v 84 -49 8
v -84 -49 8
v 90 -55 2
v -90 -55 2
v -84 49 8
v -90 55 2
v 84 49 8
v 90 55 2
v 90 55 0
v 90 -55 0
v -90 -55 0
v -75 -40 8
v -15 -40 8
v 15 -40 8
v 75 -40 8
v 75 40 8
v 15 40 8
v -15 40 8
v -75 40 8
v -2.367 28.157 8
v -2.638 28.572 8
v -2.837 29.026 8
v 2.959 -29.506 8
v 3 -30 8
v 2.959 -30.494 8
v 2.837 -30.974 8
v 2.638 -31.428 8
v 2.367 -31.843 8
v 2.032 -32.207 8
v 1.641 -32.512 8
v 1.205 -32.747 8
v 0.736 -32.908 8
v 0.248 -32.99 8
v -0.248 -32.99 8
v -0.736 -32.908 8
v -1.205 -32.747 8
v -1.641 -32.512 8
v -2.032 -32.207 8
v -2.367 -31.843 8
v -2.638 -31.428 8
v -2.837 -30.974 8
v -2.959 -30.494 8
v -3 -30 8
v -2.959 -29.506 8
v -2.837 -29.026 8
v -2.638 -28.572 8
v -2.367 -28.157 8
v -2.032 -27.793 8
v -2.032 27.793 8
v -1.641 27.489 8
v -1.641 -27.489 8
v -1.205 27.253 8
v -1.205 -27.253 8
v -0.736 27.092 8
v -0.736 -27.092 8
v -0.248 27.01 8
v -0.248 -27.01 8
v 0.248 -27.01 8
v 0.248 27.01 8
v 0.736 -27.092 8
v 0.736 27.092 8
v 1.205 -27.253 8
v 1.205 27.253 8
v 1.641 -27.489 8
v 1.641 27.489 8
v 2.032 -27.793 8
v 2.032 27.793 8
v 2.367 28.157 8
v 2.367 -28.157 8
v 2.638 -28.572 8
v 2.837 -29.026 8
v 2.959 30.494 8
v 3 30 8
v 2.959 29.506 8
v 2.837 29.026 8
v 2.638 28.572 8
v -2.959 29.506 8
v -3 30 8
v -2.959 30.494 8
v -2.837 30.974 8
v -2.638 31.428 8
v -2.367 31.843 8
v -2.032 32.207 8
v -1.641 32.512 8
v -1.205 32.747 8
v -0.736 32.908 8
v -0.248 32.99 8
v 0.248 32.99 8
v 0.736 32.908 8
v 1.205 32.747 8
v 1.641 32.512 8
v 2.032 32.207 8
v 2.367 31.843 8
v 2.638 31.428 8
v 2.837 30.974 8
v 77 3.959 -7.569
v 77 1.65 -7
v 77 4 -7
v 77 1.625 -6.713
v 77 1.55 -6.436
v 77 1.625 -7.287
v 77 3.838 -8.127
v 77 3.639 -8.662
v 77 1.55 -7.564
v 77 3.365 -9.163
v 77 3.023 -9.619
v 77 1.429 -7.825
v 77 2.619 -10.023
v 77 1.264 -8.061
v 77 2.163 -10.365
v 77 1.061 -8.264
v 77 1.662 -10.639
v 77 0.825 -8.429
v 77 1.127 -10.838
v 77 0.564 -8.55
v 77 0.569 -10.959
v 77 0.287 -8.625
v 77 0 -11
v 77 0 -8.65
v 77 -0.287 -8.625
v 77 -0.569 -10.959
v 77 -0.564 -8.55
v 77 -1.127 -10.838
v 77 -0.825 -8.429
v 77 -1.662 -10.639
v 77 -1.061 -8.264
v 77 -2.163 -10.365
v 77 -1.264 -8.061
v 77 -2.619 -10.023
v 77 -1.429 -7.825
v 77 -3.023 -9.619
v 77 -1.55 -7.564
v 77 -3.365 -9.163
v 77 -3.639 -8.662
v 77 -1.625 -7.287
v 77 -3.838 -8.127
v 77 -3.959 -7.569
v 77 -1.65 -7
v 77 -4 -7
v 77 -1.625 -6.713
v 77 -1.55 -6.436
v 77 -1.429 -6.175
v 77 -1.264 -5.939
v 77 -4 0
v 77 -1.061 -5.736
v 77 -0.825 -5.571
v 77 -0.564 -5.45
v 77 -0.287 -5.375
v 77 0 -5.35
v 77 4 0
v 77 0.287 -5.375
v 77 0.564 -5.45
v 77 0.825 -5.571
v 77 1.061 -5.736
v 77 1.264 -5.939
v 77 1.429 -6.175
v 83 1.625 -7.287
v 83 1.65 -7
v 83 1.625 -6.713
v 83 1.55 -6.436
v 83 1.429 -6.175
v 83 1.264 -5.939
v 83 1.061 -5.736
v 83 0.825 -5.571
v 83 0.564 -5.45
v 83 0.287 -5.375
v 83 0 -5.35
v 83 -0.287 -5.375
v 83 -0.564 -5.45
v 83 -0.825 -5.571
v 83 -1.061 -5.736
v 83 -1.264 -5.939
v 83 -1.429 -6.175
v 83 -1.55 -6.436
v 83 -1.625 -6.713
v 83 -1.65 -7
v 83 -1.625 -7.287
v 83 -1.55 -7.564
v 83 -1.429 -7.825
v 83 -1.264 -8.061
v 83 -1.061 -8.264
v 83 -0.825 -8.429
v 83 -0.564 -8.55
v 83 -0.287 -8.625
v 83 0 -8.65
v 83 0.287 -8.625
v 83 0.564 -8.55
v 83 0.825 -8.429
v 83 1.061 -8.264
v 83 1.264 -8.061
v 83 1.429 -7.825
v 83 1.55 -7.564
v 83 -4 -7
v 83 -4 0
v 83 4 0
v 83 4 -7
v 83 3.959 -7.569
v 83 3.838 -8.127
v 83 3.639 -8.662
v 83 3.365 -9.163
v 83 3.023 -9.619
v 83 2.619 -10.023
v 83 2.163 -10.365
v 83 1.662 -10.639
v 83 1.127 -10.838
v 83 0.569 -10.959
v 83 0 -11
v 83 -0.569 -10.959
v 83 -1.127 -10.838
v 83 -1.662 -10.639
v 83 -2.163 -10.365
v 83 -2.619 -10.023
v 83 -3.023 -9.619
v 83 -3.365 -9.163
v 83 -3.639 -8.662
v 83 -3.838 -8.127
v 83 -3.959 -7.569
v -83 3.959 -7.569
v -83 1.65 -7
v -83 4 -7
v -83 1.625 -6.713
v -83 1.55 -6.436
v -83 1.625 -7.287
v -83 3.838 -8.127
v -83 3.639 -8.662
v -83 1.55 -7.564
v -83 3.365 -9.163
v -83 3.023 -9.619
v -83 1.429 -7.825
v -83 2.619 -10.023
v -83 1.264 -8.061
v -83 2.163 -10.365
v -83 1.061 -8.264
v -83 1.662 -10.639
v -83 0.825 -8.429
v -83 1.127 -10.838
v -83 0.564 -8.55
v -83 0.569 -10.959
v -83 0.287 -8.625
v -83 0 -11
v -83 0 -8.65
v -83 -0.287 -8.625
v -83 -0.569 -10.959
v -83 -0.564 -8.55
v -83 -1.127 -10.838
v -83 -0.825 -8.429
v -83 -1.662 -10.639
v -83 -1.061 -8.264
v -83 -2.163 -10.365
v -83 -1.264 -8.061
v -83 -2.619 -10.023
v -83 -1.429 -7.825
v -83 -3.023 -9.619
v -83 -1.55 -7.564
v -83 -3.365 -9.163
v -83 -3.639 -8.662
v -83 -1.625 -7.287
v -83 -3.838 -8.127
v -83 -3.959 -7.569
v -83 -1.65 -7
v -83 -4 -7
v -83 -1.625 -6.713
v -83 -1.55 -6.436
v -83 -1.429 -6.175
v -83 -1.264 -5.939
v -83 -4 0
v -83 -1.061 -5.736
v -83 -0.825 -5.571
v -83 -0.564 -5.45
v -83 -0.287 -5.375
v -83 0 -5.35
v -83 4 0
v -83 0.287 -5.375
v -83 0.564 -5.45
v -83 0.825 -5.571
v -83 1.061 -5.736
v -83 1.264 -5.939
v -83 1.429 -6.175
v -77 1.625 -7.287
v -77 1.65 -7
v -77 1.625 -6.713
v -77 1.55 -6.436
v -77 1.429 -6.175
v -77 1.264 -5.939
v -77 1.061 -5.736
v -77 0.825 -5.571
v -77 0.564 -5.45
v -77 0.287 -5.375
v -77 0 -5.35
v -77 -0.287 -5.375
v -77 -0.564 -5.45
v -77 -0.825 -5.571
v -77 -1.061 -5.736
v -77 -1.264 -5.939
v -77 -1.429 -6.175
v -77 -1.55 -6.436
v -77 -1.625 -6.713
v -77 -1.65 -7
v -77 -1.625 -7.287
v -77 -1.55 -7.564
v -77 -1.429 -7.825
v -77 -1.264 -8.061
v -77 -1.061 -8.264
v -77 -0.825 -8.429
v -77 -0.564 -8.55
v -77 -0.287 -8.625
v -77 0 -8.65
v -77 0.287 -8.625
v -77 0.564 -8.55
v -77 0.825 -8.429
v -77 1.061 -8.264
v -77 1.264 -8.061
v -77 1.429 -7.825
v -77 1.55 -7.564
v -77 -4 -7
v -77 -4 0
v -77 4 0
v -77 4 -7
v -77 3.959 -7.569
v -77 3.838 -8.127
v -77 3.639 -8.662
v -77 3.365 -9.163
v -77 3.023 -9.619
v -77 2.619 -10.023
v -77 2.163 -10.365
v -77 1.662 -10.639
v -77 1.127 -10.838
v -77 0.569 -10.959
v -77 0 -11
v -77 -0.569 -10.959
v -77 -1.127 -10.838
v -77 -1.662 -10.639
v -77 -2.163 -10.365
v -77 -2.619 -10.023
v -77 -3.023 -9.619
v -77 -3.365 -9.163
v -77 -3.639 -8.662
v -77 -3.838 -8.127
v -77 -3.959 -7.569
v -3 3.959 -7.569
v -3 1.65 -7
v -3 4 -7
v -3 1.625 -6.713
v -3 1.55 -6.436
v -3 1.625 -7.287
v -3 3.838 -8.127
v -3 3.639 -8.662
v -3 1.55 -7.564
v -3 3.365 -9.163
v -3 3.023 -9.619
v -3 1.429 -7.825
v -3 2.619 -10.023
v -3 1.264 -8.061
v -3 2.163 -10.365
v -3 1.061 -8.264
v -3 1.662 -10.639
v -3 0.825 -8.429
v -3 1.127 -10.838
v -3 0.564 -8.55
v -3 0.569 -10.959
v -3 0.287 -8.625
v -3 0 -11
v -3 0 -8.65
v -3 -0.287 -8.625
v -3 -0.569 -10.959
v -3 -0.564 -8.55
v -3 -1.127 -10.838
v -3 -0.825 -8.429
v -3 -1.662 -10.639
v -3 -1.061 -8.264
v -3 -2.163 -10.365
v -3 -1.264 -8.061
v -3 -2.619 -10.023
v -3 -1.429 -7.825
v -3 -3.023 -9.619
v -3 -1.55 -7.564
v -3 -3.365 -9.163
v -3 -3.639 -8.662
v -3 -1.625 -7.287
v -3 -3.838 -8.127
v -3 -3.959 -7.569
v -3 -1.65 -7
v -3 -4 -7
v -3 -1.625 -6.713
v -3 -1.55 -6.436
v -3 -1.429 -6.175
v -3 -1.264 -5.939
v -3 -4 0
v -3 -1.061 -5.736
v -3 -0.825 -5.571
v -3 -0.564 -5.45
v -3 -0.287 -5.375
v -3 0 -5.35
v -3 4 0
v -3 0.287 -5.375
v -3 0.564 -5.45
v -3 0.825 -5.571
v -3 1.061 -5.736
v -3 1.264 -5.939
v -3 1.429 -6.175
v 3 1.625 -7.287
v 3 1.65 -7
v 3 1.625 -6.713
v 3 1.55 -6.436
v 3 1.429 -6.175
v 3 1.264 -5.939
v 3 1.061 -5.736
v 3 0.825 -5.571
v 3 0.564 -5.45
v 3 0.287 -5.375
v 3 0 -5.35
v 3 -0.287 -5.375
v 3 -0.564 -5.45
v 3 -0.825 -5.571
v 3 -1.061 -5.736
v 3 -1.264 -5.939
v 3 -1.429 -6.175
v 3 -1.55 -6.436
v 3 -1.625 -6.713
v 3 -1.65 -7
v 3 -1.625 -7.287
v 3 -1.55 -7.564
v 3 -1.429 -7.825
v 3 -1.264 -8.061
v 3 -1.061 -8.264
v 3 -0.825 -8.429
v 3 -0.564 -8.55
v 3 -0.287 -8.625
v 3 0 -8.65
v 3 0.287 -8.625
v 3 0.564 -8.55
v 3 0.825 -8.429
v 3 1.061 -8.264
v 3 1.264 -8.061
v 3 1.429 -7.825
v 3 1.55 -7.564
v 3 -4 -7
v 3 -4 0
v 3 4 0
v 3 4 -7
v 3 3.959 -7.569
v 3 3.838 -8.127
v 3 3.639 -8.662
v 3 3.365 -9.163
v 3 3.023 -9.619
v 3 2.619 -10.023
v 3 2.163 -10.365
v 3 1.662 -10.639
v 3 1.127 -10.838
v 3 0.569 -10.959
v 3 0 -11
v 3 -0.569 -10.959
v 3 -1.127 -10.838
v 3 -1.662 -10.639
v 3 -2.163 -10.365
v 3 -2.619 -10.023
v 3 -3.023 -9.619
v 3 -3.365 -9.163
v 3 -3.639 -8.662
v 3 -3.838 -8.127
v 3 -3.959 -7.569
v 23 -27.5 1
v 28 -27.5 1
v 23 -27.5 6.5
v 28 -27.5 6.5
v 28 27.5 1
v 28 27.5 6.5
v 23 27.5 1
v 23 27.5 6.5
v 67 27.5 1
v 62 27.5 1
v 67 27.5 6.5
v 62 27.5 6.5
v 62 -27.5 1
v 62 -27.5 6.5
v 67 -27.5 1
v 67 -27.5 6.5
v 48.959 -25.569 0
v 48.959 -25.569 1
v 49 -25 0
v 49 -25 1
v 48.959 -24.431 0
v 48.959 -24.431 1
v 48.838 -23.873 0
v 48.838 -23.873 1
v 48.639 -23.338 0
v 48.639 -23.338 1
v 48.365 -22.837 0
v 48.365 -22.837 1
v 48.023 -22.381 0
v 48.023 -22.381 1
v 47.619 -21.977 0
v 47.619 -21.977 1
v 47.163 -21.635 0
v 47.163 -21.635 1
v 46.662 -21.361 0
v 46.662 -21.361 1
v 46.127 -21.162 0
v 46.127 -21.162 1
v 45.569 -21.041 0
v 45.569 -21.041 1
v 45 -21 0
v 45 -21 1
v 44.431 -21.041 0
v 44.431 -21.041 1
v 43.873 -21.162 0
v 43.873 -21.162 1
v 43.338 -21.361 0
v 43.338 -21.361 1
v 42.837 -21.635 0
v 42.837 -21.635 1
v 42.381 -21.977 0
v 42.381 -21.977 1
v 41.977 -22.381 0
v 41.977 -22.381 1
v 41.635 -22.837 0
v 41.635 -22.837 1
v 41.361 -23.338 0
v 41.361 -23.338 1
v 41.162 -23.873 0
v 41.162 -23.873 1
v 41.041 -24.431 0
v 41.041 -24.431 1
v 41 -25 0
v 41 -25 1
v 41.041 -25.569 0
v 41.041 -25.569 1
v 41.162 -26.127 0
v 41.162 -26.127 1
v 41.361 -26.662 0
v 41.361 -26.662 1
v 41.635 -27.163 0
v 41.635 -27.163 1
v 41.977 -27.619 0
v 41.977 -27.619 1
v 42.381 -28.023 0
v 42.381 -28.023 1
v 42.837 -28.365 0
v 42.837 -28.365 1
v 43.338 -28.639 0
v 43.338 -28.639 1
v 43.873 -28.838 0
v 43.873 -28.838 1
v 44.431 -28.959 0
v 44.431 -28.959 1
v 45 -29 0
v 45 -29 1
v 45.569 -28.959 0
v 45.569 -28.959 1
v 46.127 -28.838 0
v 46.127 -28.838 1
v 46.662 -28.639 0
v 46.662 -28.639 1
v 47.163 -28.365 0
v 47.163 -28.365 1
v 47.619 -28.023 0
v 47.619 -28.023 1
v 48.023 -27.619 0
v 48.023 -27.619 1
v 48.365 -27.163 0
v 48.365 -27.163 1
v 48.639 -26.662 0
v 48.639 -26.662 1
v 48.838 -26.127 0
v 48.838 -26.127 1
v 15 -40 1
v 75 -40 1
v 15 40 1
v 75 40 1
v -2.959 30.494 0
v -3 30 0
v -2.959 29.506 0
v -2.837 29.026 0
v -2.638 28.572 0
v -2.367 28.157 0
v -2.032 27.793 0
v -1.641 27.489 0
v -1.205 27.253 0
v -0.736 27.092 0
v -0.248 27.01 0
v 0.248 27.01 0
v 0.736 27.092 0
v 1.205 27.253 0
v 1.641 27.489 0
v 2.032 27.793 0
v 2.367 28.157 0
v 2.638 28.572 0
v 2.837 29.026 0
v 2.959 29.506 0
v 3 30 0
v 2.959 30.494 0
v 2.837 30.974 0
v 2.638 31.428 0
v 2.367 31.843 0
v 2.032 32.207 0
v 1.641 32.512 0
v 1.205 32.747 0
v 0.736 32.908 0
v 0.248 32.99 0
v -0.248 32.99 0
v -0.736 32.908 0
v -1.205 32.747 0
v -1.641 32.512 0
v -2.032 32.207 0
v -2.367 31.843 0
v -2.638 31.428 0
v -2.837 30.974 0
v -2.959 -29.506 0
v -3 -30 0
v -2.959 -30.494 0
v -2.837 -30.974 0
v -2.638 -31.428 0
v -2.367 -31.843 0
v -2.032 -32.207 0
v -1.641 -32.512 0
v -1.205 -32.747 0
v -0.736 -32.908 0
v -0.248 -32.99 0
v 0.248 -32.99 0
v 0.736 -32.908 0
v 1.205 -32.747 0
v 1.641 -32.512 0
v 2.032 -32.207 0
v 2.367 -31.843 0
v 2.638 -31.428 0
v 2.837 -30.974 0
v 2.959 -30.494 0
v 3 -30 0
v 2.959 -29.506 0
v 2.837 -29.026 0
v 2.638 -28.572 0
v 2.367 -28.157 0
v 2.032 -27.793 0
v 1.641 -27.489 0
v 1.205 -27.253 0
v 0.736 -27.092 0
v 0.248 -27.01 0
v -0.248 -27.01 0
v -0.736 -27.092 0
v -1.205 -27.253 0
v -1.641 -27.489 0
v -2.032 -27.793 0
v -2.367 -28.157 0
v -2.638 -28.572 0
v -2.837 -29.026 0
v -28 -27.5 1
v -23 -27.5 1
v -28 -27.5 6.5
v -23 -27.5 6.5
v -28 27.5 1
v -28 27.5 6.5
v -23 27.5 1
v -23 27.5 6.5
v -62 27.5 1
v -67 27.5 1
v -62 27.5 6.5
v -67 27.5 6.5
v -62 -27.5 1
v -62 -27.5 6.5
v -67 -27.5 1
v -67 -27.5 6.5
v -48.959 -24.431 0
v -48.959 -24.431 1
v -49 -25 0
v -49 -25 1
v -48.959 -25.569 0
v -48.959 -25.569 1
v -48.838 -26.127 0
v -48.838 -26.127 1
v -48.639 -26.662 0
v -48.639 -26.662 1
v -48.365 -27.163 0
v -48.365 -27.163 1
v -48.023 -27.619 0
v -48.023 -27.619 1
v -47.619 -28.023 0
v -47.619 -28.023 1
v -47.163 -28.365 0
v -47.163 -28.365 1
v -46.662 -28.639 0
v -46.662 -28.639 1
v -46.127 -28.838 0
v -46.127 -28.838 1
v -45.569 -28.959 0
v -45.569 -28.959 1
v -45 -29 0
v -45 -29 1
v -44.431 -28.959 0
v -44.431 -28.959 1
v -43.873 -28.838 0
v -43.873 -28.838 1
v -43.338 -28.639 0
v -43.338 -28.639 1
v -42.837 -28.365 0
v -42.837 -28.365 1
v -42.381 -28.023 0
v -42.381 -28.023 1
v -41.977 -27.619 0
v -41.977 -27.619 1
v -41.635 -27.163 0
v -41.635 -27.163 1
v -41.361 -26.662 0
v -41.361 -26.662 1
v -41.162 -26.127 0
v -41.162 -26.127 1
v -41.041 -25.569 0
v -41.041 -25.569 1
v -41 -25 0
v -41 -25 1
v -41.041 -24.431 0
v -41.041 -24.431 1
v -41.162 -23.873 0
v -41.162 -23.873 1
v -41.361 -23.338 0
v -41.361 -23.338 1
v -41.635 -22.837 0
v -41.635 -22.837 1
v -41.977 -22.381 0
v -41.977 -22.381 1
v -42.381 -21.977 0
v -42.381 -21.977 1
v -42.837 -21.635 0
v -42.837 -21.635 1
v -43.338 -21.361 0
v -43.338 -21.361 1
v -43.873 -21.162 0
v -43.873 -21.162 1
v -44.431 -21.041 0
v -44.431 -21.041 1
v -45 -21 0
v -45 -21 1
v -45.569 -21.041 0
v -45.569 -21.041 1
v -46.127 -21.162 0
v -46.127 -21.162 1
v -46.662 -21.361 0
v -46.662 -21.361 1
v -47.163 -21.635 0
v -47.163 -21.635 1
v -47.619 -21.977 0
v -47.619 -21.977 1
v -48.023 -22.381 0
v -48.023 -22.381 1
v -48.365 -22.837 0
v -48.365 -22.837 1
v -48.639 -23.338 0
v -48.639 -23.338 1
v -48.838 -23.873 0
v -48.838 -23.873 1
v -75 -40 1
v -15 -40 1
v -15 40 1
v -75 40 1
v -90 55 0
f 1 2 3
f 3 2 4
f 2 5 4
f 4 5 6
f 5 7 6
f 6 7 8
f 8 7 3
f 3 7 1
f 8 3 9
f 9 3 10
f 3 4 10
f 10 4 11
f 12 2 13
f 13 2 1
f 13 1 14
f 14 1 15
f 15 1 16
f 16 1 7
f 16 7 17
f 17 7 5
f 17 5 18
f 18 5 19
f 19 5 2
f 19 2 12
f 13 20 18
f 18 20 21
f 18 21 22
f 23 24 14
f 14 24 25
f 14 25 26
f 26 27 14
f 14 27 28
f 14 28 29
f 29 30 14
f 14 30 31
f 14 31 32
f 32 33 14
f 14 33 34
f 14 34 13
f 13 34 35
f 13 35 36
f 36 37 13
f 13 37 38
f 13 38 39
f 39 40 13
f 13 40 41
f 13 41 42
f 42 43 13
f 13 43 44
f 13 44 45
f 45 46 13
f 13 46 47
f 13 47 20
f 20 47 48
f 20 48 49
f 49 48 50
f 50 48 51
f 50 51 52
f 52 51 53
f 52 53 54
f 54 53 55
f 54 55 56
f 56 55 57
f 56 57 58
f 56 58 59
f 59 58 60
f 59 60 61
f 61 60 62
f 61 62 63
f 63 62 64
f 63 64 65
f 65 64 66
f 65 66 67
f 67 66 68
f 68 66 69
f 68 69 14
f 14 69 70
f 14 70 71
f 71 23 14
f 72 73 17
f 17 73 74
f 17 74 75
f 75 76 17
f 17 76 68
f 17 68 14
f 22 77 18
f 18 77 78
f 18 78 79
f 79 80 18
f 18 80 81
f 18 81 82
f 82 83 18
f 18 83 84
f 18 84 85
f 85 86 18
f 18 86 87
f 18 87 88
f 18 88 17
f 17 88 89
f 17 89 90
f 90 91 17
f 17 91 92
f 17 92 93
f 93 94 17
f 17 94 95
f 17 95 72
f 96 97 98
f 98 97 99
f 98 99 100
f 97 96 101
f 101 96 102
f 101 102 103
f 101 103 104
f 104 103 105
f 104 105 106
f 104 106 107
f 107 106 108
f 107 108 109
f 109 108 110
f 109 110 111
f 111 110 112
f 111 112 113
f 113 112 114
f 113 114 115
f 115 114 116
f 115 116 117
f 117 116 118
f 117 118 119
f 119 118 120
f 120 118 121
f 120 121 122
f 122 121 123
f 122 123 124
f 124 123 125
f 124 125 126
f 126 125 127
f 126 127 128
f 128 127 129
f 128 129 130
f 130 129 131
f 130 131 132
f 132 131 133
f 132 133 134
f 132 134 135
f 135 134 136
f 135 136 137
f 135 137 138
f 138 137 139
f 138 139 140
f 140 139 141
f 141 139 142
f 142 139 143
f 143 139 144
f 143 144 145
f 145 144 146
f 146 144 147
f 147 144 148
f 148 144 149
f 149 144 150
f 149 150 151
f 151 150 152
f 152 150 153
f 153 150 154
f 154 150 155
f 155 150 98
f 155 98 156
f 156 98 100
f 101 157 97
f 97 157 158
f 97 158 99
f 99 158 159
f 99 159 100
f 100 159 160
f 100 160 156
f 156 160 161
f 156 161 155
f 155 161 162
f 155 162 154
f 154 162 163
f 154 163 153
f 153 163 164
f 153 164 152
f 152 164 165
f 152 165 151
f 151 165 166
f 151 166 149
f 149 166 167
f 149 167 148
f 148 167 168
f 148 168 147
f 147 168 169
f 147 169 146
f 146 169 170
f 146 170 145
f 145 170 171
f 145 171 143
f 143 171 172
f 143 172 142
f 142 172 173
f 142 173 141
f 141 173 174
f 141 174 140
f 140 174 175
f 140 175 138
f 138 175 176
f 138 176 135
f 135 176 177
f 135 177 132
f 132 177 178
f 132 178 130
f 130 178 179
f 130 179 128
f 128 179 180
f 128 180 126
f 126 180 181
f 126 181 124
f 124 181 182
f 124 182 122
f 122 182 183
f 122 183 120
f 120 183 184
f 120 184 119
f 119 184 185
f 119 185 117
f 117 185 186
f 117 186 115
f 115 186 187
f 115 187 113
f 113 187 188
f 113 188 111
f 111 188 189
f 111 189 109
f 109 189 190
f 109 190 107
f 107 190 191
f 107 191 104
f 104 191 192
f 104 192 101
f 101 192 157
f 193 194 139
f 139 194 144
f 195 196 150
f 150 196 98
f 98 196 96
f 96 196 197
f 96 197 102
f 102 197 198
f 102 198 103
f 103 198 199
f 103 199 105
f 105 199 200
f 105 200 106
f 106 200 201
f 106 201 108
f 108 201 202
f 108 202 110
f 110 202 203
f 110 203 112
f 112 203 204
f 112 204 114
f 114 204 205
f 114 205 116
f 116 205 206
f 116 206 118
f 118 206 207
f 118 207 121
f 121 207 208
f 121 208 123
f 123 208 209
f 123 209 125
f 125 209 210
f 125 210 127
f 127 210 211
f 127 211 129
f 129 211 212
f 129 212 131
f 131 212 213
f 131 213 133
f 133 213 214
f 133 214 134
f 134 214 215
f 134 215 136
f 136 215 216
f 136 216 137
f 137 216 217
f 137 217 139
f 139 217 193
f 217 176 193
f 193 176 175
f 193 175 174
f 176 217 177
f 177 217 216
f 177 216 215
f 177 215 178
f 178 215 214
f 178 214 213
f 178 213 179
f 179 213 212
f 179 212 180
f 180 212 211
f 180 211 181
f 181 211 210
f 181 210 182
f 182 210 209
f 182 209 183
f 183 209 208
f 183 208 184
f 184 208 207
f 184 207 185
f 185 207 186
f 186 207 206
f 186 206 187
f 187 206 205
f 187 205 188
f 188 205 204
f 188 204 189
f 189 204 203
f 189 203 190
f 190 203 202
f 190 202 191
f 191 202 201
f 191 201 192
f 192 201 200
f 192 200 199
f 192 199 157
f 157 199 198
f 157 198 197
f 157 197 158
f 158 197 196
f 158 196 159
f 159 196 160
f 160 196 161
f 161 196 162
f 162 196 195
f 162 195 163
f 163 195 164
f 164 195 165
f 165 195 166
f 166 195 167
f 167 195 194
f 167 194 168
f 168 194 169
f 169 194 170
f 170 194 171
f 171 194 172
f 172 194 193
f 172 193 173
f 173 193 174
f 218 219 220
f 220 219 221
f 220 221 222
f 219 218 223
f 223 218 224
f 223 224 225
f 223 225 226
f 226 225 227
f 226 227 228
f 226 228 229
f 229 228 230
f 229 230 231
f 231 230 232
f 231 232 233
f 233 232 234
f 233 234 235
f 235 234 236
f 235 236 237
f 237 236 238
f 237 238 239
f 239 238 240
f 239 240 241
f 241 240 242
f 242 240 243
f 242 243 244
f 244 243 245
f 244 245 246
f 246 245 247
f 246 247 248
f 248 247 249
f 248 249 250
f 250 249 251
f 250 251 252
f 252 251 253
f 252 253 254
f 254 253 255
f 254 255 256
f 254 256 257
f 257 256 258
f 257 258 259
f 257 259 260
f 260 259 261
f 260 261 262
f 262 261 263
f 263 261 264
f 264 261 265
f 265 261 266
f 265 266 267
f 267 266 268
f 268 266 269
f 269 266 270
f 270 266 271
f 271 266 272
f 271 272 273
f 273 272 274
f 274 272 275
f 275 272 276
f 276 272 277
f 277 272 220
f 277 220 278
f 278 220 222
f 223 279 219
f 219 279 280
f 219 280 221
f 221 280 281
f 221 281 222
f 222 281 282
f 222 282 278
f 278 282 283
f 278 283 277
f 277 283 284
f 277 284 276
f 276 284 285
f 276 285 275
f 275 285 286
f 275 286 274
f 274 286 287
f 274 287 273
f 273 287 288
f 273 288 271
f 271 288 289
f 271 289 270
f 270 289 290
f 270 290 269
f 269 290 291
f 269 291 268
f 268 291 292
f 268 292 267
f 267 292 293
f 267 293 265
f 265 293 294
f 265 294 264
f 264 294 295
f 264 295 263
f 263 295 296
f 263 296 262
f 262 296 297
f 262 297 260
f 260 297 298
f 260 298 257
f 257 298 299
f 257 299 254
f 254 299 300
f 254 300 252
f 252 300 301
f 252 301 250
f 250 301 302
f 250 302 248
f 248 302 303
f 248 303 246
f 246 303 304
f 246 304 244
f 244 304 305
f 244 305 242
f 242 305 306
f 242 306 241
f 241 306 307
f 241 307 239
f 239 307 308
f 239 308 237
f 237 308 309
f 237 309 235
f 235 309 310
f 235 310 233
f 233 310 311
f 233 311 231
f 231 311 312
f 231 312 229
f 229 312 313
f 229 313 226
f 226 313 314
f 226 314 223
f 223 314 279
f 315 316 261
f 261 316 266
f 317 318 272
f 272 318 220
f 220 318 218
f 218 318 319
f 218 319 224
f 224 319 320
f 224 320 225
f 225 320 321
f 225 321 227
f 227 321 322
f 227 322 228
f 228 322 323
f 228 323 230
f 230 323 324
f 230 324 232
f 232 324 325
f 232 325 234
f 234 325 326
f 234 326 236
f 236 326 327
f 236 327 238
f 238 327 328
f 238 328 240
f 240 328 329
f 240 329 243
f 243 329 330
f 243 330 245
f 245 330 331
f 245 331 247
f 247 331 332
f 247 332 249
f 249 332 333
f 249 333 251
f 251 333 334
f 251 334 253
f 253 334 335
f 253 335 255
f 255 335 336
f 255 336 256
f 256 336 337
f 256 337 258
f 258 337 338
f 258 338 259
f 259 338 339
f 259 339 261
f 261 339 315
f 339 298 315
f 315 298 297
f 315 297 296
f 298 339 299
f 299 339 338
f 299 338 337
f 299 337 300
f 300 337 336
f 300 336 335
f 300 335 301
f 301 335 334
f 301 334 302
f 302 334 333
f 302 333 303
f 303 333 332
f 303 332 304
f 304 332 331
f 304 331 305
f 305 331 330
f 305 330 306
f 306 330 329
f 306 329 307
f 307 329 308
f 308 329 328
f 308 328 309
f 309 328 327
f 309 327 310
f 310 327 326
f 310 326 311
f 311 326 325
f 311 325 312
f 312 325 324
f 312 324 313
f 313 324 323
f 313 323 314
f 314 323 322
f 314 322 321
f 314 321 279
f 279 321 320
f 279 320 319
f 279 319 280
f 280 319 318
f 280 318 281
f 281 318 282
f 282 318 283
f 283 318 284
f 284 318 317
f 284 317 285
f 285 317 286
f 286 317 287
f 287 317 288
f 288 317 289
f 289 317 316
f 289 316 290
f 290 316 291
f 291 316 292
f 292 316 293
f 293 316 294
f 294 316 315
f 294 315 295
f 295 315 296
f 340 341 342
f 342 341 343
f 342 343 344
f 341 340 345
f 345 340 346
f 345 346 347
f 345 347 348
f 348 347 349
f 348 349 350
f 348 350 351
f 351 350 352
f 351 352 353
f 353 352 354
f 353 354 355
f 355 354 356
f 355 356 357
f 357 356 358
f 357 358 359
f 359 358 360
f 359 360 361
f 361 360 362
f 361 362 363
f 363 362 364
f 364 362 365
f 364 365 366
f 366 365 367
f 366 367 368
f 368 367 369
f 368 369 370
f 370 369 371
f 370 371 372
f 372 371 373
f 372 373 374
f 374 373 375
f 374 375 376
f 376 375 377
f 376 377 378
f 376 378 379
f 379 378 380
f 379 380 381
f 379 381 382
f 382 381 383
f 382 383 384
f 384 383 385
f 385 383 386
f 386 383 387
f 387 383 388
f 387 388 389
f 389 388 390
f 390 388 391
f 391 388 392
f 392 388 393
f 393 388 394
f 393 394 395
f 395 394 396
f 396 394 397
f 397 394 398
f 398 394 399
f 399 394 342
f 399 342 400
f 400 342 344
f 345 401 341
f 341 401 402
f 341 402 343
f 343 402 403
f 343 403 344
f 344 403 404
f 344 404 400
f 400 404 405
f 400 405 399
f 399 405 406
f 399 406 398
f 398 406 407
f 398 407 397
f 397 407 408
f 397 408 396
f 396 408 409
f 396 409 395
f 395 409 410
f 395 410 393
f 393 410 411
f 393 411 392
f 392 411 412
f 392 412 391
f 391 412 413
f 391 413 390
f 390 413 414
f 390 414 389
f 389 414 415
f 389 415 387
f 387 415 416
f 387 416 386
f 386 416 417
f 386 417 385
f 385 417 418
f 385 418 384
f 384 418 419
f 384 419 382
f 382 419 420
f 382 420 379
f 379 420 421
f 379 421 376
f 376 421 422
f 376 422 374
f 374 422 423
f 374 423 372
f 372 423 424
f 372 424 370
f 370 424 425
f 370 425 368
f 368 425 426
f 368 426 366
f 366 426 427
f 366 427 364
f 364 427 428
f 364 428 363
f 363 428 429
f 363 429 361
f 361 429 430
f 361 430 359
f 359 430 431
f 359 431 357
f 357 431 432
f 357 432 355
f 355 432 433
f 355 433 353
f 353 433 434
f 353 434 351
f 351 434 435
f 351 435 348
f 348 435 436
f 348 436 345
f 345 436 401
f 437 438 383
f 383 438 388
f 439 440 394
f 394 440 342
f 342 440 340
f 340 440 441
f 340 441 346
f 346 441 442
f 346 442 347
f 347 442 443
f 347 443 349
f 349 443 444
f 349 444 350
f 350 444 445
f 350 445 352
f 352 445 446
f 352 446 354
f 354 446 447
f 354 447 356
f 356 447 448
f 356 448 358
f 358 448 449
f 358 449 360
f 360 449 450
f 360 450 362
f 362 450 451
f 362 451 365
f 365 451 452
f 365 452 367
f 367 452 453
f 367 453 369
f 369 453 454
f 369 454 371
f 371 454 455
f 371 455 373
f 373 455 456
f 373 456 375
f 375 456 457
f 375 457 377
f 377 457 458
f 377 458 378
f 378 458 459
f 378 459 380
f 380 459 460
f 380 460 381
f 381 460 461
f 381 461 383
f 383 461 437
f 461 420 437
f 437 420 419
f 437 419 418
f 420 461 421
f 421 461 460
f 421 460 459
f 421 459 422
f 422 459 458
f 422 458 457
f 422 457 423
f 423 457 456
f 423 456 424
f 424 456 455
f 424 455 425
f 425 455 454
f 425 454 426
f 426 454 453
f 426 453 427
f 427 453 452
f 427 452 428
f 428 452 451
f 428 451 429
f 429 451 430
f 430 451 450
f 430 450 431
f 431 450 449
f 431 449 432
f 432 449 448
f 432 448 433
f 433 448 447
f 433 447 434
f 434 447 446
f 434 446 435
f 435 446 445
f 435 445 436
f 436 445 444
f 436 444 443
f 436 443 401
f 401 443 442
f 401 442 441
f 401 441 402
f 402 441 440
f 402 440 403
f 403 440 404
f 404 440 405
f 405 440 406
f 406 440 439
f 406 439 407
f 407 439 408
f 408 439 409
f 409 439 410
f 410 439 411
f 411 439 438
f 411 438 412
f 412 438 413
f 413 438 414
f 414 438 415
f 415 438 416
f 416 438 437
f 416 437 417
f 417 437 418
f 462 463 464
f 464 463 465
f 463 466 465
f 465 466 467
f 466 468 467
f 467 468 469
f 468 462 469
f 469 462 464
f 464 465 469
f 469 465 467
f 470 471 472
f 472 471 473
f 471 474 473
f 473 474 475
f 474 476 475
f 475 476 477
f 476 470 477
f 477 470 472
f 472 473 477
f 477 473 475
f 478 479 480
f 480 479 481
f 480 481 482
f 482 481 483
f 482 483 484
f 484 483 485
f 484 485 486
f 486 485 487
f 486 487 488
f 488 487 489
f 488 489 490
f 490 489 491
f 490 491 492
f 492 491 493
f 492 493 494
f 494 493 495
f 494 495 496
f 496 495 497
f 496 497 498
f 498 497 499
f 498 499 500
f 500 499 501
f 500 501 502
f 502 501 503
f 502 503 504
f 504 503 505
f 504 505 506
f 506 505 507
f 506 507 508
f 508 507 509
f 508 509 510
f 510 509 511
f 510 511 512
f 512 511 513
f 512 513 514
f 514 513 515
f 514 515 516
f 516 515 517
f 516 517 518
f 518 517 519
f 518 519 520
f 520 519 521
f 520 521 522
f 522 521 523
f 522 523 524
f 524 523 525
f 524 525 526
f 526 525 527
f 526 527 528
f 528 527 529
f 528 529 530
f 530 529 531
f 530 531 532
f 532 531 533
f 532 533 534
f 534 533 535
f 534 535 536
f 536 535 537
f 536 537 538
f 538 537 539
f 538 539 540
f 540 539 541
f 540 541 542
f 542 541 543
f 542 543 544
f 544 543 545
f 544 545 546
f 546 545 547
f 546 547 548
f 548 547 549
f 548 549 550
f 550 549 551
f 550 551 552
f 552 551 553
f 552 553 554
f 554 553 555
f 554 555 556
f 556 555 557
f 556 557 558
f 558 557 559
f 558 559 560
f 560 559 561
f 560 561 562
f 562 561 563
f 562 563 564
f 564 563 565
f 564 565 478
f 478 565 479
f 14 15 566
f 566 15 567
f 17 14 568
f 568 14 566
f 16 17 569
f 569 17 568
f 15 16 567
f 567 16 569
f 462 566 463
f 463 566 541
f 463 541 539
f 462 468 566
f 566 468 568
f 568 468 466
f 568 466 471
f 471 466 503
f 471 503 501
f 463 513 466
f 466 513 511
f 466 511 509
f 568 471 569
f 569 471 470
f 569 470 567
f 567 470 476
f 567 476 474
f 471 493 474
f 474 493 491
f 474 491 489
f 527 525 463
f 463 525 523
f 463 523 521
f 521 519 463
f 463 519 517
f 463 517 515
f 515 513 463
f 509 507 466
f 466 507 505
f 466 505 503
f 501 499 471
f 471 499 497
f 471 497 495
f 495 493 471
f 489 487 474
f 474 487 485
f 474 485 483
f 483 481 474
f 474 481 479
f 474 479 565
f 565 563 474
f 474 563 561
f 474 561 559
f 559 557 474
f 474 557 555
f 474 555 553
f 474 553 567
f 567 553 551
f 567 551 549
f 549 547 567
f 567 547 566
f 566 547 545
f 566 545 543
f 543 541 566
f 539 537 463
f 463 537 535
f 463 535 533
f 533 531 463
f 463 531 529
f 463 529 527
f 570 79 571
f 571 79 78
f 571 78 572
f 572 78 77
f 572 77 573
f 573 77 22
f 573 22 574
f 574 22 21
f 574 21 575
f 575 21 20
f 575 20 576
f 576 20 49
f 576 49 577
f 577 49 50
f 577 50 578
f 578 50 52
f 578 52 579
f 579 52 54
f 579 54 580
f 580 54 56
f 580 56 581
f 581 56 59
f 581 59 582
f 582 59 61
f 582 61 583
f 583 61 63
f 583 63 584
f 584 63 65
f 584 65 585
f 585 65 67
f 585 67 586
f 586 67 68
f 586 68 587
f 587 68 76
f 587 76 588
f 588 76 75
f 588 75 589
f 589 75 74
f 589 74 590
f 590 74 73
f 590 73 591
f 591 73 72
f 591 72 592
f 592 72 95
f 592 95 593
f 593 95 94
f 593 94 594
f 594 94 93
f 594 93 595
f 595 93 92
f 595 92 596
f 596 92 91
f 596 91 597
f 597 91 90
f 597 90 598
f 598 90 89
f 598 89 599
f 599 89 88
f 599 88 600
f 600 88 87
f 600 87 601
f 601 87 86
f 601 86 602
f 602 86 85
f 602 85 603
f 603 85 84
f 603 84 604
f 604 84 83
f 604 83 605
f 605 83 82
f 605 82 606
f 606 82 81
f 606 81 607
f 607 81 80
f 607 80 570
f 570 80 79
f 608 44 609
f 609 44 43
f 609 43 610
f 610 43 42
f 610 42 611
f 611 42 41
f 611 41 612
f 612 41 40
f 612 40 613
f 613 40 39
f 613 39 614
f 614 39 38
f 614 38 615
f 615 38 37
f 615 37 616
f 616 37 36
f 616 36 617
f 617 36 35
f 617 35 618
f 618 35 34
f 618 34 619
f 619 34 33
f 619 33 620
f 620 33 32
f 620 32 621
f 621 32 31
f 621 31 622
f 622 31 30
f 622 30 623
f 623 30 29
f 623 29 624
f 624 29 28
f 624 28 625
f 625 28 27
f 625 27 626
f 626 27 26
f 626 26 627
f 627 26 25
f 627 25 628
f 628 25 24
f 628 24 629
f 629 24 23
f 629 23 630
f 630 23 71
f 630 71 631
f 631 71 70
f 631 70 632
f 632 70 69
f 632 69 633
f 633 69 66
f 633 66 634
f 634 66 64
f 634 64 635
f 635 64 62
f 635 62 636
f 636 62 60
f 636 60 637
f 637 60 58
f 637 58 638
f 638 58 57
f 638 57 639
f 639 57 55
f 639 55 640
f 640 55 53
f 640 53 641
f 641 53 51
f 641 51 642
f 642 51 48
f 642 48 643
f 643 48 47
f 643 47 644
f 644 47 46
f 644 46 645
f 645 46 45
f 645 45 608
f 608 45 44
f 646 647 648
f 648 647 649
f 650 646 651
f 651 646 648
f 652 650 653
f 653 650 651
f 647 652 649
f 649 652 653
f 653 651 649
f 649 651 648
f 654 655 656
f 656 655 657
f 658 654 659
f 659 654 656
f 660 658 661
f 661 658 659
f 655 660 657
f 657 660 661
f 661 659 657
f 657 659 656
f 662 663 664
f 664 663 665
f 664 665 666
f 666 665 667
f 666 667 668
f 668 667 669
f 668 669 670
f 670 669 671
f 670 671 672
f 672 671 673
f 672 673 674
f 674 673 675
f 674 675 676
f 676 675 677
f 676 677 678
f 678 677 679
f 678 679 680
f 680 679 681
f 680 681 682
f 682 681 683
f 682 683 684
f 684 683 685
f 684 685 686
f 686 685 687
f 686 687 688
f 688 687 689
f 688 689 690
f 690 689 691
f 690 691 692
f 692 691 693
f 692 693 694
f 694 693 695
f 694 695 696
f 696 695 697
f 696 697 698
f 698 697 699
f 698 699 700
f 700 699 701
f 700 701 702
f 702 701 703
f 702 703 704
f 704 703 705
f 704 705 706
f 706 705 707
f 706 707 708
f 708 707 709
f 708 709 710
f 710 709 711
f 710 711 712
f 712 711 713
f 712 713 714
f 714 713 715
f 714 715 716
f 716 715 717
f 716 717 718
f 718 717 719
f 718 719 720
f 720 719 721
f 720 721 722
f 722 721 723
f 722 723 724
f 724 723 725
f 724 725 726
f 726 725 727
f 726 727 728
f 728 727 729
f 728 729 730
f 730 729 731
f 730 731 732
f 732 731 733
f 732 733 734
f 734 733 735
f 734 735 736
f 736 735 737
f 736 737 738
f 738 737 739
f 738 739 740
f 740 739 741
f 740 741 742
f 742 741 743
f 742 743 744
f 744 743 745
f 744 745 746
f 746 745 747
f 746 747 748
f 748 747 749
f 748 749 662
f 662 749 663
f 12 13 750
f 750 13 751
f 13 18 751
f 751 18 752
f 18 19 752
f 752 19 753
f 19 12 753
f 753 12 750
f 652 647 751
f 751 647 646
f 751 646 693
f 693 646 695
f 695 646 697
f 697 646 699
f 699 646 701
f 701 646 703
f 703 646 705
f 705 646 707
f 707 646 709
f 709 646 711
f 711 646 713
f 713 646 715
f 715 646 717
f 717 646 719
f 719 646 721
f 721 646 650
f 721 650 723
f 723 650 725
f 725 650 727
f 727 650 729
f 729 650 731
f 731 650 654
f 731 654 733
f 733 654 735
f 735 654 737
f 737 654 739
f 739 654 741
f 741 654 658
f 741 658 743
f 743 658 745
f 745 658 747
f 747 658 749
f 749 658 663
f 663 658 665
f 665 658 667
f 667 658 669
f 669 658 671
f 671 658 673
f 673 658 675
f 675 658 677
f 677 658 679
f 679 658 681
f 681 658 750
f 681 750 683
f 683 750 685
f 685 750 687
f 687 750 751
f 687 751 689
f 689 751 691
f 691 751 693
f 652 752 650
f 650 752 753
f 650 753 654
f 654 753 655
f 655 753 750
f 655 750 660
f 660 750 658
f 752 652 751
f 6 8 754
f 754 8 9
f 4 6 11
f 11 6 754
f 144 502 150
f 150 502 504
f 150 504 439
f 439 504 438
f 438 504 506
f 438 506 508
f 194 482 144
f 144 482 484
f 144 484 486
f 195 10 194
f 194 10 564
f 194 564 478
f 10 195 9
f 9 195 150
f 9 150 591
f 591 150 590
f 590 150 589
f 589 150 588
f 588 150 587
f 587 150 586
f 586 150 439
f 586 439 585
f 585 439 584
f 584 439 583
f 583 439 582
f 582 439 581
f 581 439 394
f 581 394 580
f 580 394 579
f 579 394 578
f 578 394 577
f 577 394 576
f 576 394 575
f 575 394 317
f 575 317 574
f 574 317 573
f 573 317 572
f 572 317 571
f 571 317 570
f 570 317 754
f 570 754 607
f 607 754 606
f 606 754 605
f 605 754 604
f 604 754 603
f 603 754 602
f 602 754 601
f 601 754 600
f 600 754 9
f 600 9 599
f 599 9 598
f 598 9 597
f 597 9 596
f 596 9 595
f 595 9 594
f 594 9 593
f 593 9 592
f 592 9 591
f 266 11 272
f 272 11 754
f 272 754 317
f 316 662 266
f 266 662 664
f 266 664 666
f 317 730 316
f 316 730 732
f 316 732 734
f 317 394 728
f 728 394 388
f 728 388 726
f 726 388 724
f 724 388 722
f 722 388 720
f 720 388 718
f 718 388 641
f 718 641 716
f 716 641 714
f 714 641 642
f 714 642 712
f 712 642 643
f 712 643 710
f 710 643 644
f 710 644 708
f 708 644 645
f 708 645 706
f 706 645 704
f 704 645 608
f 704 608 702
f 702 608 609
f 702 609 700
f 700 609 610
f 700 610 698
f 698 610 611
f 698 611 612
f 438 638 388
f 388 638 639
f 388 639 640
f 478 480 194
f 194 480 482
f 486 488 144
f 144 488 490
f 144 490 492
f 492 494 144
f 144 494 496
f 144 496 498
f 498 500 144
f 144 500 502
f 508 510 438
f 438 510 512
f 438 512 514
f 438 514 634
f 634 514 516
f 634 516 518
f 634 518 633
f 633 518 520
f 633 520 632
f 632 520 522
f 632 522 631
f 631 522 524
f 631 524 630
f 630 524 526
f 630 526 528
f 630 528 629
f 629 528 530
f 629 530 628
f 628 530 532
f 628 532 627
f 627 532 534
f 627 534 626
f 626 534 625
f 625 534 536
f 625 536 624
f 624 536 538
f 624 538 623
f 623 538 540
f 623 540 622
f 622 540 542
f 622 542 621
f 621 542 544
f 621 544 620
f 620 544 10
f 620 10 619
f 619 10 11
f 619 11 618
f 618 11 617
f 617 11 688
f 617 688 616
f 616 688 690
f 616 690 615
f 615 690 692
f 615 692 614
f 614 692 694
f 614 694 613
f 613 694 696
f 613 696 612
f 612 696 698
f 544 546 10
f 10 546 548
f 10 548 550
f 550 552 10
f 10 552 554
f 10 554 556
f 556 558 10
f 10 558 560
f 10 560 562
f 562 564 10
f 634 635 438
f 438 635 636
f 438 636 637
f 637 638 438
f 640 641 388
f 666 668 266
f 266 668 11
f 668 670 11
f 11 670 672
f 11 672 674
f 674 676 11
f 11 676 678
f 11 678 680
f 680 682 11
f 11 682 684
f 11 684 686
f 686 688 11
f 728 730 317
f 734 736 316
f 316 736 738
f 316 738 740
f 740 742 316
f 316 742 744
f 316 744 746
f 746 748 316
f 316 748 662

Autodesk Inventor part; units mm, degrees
sketch "Skizze1" plane through (0, 0, 0) normal (0, 0, 1) x (1, 0, 0)
  line L0 (0, 40) -> (0, -37) construction
  line L1 (-52, 0) -> (54, 0) construction
  line L2 (-90, -55) -> (90, -55)
  line L3 (90, -55) -> (90, 55)
  line L4 (90, 55) -> (-90, 55)
  line L5 (-90, 55) -> (-90, -55)
  line L6 (0, -77) -> (0, 77) projected
  line L7 (-126, 0) -> (126, 0) projected
  point P0 (0, 0)
  dimension "d0" = 110
  dimension "d1" = 180
extrude "Extrusion1" add sketch "Skizze1" along normal blind 8
sketch "Skizze2" plane through (0, 0, 8) normal (0, 0, 1) x (1, 0, 0)
  line L0 (-75, 40) -> (-15, 40)
  line L1 (-15, 40) -> (-15, -40)
  line L2 (-15, -40) -> (-75, -40)
  line L3 (-75, -40) -> (-75, 40)
  line L4 (-126, 0) -> (126, 0) projected
  line L5 (0, 77) -> (0, -77) projected
  point P0 (0, 0)
  dimension "d4" = 60
  dimension "d5" = 80
  dimension "d6" = 15
extrude "Extrusion2" cut sketch "Skizze2" against normal blind 7
sketch "Skizze3" plane through (0, 0, 1) normal (0, 0, 1) x (1, 0, 0)
  line L0 (-15, 40) -> (-15, -40) projected
  line L1 (-15, -40) -> (-75, -40) projected
  line L2 (-75, -40) -> (-75, 40) projected
  line L3 (-15, -40) -> (-75, -40) projected
  line L4 (-15, 40) -> (-15, -40) projected
  line L5 (-75, 40) -> (-15, 40) projected
  line L6 (-126, 0) -> (126, 0) projected
  line L7 (0, 77) -> (0, -77) projected
  circle A0 centre (-45, -25) radius 4
  point P0 (0, 0)
  dimension "d9" = 8
  dimension "d10" = 30
  dimension "d11" = 15
extrude "Extrusion3" cut sketch "Skizze3" against normal blind 10 contours A0
sketch "Skizze4" plane through (0, 0, 1) normal (0, 0, 1) x (1, 0, 0)
  circle A0 centre (-45, -25) radius 4 projected
  line L0 (-75, -40) -> (-75, 40) projected
  line L1 (-15, -40) -> (-75, -40) projected
  line L2 (-15, 40) -> (-15, -40) projected
  line L3 (-75, 40) -> (-15, 40) projected
  line L4 (-126, 0) -> (126, 0) projected
  line L5 (-67, 27.5) -> (-62, 27.5)
  line L6 (-62, 27.5) -> (-62, -27.5)
  line L7 (-62, -27.5) -> (-67, -27.5)
  line L8 (-67, -27.5) -> (-67, 27.5)
  line L9 (-23, 27.5) -> (-28, 27.5)
  line L10 (-28, 27.5) -> (-28, -27.5)
  line L11 (-28, -27.5) -> (-23, -27.5)
  line L12 (-23, -27.5) -> (-23, 27.5)
  point P0 (0, 0)
  dimension "d14" = 5
  dimension "d15" = 55
  dimension "d16" = 8
  dimension "d17" = 55
  dimension "d18" = 5
  dimension "d19" = 8
extrude "Extrusion4" add sketch "Skizze4" along normal blind 5.5 contours L8 L5 L6 L4 | L4 L6 L7 L8 | L12 L11 L10 L4 | L4 L10 L9 L12
sketch "Skizze5" plane through (0, 0, 8) normal (0, 0, 1) x (1, 0, 0)
  line L0 (0, 77) -> (0, -77) projected
  line L1 (-126, 0) -> (126, 0) projected
  circle A0 centre (0, 30) radius 3
  circle A1 centre (0, -30) radius 3
  point P0 (0, 0)
  dimension "d22" = 6
  dimension "d23" = 6
  dimension "d24" = 30
  dimension "d25" = 30
extrude "Extrusion5" cut sketch "Skizze5" against normal blind 10
sketch "Skizze6" plane through (0, 0, 8) normal (0, 0, 1) x (1, 0, 0)
  line L0 (-75, 40) -> (-15, 40) projected
  line L1 (-75, -40) -> (-75, 40) projected
  line L2 (-67, 27.5) -> (-67, -27.5) projected
  line L3 (-62, -27.5) -> (-62, 27.5) projected
  line L4 (-62, 27.5) -> (-67, 27.5) projected
  line L5 (-67, -27.5) -> (-62, -27.5) projected
  line L6 (-15, -40) -> (-75, -40) projected
  circle A0 centre (-45, -25) radius 4 projected
  line L7 (-28, 27.5) -> (-28, -27.5) projected
  line L8 (-28, -27.5) -> (-23, -27.5) projected
  line L9 (-23, -27.5) -> (-23, 27.5) projected
  line L10 (-23, 27.5) -> (-28, 27.5) projected
  line L11 (-28, 27.5) -> (-28, -27.5) projected
  line L12 (-28, -27.5) -> (-23, -27.5) projected
  line L13 (-15, 40) -> (-15, -40) projected
  line L14 (0, 77) -> (0, -77) projected
  line L15 (-126, 0) -> (126, 0) projected
  point P0 (0, 0)
mirror "Spiegeln1" about plane through (0, 0, 0) normal (1, 0, 0) of "Extrusion4", "Extrusion2", "Extrusion3"
sketch "Skizze7" plane through (0, 0, 0) normal (0, 0, -1) x (-1, 0, 0)
  point P0 (0, 0)
sketch "Skizze8" plane through (0, 0, 0) normal (1, 0, 0) x (0, 1, 0)
  circle A0 centre (0, -7) radius 1.65
  circle A1 centre (0, -7) radius 4
  line L0 (55, 0) -> (-55, 0) projected
  line L1 (4, 0) -> (4, -7)
  line L2 (-4, -7) -> (-4, 0)
  point P0 (0, 0)
  dimension "d28" = 3.3
  dimension "d29" = 7
  dimension "d30" = 8
extrude "Extrusion6" add sketch "Skizze8" along normal mid plane 6
pattern_linear "Rechteckige Anordnung1" count 2 spacing 80 along (-1, 0, 0) of "Extrusion6"
pattern_linear "Rechteckige Anordnung2" count 2 spacing 80 along (1, 0, 0) of "Extrusion6"
chamfer "Fase1" distance 6 angle 45 4 edges at (0, 55, 8) (-90, 0, 8) (0, -55, 8) (90, 0, 8)
properties part number "PV-Halterung"
